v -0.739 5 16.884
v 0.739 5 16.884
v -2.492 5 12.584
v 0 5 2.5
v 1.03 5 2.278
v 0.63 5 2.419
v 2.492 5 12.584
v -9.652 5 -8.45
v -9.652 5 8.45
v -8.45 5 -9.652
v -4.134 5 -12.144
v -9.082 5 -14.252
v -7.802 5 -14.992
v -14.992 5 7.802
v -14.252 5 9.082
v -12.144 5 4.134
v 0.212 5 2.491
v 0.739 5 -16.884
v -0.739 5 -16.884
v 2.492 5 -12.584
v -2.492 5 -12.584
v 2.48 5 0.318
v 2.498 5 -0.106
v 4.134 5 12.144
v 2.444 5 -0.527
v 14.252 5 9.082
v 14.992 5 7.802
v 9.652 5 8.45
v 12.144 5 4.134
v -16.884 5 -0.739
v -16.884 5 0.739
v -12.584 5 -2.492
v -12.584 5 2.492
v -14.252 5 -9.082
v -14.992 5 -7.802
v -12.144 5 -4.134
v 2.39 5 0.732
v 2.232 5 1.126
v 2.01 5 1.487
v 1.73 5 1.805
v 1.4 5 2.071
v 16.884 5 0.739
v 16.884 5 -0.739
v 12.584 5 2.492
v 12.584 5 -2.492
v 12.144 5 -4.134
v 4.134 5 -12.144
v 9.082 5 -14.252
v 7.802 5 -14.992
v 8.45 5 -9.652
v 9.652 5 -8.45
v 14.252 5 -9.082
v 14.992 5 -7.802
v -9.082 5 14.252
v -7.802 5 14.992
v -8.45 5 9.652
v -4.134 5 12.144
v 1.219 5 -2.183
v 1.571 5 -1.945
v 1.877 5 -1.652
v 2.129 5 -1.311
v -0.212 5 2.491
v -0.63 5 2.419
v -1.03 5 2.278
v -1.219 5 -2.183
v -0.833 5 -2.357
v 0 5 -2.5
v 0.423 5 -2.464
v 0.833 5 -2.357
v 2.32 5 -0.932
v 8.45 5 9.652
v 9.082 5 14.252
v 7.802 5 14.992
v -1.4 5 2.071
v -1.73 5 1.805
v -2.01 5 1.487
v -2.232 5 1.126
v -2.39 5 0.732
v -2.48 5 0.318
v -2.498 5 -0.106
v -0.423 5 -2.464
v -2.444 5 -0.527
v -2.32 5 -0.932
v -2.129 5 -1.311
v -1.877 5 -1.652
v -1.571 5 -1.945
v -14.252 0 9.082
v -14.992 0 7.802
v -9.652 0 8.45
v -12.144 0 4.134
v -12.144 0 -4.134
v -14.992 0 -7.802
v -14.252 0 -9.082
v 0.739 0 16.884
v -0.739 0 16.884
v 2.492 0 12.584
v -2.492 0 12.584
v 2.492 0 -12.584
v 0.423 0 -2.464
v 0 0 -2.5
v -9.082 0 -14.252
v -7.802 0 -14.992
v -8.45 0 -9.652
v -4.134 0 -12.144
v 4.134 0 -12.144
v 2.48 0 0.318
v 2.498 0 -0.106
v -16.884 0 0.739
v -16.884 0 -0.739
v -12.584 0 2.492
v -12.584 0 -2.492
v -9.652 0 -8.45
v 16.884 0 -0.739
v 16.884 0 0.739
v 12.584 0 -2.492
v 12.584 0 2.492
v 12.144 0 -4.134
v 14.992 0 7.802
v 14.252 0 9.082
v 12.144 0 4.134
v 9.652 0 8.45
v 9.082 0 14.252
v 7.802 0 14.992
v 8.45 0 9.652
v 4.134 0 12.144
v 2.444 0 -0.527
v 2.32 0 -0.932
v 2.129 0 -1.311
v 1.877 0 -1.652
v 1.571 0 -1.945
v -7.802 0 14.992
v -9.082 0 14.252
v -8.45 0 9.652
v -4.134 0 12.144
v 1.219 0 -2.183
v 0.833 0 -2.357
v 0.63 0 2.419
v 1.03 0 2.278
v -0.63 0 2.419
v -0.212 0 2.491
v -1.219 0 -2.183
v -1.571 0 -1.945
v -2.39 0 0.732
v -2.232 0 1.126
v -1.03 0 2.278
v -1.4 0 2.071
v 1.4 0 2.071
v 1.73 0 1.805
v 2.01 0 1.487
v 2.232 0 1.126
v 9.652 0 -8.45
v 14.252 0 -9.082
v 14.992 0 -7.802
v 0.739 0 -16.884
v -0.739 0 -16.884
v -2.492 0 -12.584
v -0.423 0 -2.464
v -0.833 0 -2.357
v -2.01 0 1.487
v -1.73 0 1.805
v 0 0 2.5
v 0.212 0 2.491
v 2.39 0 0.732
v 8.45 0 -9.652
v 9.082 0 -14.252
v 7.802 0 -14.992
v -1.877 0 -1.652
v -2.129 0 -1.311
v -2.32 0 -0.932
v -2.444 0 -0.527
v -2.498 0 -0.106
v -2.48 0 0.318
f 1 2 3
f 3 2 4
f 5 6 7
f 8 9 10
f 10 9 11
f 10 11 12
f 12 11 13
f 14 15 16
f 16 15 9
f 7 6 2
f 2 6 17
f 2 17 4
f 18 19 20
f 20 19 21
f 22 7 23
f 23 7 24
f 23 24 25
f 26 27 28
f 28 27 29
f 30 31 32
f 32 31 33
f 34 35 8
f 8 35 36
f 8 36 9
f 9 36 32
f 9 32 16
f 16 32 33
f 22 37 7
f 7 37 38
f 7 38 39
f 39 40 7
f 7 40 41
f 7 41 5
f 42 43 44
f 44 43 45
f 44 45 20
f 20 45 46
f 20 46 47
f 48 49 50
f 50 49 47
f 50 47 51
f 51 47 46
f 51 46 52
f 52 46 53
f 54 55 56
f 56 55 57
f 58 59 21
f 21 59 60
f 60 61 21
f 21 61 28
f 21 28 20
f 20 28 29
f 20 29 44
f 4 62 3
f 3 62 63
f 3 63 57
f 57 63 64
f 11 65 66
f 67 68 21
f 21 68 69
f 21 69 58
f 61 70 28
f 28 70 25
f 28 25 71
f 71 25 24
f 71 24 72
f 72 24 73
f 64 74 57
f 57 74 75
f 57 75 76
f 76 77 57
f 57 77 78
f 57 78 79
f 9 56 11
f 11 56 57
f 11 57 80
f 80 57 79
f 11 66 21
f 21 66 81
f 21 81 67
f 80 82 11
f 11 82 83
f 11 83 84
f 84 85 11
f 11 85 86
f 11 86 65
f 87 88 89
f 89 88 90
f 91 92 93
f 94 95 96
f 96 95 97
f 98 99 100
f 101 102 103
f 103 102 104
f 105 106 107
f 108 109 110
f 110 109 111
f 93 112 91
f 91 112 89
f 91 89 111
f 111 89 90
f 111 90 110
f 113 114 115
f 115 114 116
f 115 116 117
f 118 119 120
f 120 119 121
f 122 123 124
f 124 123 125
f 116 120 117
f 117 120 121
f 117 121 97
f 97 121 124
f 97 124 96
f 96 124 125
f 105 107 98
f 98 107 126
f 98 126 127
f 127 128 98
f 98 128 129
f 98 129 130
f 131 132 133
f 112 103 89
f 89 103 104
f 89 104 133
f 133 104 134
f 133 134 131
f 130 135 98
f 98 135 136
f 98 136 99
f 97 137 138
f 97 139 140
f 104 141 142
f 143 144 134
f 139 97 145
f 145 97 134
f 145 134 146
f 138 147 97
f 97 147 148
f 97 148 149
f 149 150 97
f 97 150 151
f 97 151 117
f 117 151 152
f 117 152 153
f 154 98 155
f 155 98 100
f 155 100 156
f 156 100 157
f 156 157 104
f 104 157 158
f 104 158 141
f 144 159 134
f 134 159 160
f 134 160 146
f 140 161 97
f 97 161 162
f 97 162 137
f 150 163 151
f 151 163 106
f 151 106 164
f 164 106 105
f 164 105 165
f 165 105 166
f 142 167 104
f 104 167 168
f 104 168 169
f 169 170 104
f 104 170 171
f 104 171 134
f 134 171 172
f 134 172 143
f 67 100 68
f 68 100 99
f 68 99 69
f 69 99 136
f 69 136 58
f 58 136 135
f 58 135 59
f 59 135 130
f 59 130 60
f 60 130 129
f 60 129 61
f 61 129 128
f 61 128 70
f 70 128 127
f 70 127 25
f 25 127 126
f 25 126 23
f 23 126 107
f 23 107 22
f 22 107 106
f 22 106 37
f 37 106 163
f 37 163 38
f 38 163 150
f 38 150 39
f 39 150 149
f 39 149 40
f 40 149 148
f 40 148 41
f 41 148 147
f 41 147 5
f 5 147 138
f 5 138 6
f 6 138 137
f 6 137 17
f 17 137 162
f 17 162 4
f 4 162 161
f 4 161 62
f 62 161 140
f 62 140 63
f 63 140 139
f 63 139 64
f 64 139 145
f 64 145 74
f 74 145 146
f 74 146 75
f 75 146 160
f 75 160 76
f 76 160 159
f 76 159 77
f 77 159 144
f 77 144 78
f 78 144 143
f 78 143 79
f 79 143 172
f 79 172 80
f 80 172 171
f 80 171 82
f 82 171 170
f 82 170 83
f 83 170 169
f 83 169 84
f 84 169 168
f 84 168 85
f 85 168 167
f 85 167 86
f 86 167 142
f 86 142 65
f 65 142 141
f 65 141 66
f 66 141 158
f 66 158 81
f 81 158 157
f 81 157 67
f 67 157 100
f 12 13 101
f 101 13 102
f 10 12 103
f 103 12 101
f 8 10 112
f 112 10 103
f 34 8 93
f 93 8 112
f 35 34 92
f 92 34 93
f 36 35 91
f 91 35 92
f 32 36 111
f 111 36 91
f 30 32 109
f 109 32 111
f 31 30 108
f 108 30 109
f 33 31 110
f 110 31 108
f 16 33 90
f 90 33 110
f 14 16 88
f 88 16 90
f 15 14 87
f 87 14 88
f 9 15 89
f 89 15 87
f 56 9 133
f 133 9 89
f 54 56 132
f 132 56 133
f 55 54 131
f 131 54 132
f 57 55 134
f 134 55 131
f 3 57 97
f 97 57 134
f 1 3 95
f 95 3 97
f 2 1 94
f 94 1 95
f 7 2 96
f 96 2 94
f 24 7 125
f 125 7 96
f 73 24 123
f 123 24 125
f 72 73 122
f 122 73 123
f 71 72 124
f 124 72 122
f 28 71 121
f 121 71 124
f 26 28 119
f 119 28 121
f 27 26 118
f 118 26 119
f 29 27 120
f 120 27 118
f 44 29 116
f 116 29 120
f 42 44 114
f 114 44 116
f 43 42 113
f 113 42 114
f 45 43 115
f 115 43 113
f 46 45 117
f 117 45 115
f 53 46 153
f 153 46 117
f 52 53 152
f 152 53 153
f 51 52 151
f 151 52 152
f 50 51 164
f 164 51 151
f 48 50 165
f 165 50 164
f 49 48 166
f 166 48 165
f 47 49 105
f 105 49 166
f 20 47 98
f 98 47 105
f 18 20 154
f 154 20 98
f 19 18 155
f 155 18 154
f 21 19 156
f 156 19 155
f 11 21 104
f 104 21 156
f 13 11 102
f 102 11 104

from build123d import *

# Parameters (mm, degrees)
SKETCH1_R           = 15
SKETCH1_R_2         = 2.5
BOSS_EXTRUDE1_DEPTH = 5
BOSS_EXTRUDE2_START = -5
SKETCH2_R           = 17
SKETCH2_R_2         = 15
BOSS_EXTRUDE2_DEPTH = 5
SKETCH3_R           = 18
CUT_EXTRUDE1_DEPTH  = 5
SKETCH4_R           = 18.354217927
CUT_EXTRUDE2_DEPTH  = 5


with BuildPart() as part:
    # Sketch1 → Boss-Extrude1 (new body)
    with BuildSketch(Plane(origin=(0, 0, 0), x_dir=(1, 0, 0), z_dir=(0, 1, 0))):
        with Locations(Location((0, 0, 0), (0, 0, 270))):
            Circle(SKETCH1_R)
        with Locations(Location((0, 0, 0), (0, 0, 270))):
            Circle(SKETCH1_R_2, mode=Mode.SUBTRACT)
    extrude(amount=BOSS_EXTRUDE1_DEPTH)

    # Sketch2 → Boss-Extrude2 (add)
    with BuildSketch(Plane(origin=(0, 5, 0), x_dir=(1, 0, 0), z_dir=(0, 1, 0)).offset(BOSS_EXTRUDE2_START)):
        with Locations(Location((0, 0, 0), (0, 0, 270))):
            Circle(SKETCH2_R)
        Circle(SKETCH2_R_2, mode=Mode.SUBTRACT)
    extrude(amount=BOSS_EXTRUDE2_DEPTH)

    # Sketch3 → Cut-Extrude1 (cut)
    with BuildSketch(Plane(origin=(0, 5, 0), x_dir=(1, 0, 0), z_dir=(0, 1, 0))):
        Circle(SKETCH3_R)
        Polygon((0.800081407, 17), (-0.800081407, 17), (-2.565946388, 12.667519465), (-3.338765682, 12.460443159), (-4.111584976, 12.253366853), (-7.807109176, 15.122472568), (-9.192890824, 14.322391161), (-8.555934489, 9.687420466), (-9.121677477, 9.121677477), (-9.687420466, 8.555934489), (-14.322391161, 9.192890824), (-15.122472568, 7.807109176), (-12.253366853, 4.111584976), (-12.460443159, 3.338765682), (-12.667519465, 2.565946388), (-17, 0.800081407), (-17, -0.800081407), (-12.667519465, -2.565946388), (-12.460443159, -3.338765682), (-12.253366853, -4.111584976), (-15.122472568, -7.807109176), (-14.322391161, -9.192890824), (-9.687420466, -8.555934489), (-9.121677477, -9.121677477), (-8.555934489, -9.687420466), (-9.192890824, -14.322391161), (-7.807109176, -15.122472568), (-4.111584976, -12.253366853), (-3.338765682, -12.460443159), (-2.565946388, -12.667519465), (-0.800081407, -17), (0.800081407, -17), (2.565946388, -12.667519465), (3.338765682, -12.460443159), (4.111584976, -12.253366853), (7.807109176, -15.122472568), (9.192890824, -14.322391161), (8.555934489, -9.687420466), (9.121677477, -9.121677477), (9.687420466, -8.555934489), (14.322391161, -9.192890824), (15.122472568, -7.807109176), (12.253366853, -4.111584976), (12.460443159, -3.338765682), (12.667519465, -2.565946388), (17, -0.800081407), (17, 0.800081407), (12.667519465, 2.565946388), (12.460443159, 3.338765682), (12.253366853, 4.111584976), (15.122472568, 7.807109176), (14.322391161, 9.192890824), (9.687420466, 8.555934489), (9.121677477, 9.121677477), (8.555934489, 9.687420466), (9.192890824, 14.322391161), (7.807109176, 15.122472568), (4.111584976, 12.253366853), (3.338765682, 12.460443159), (2.565946388, 12.667519465), align=None, mode=Mode.SUBTRACT)
    extrude(amount=-CUT_EXTRUDE1_DEPTH, mode=Mode.SUBTRACT)

    # Sketch4 → Cut-Extrude2 (cut)
    with BuildSketch(Plane(origin=(0, 5, 0), x_dir=(1, 0, 0), z_dir=(0, 1, 0))):
        Circle(SKETCH4_R)
        with BuildLine():
            Line((2.492089445, 12.583781755), (4.133678109, 12.143919398))
            Line((4.133678109, 12.143919398), (7.801525521, 14.991537598))
            ThreePointArc((7.801525521, 14.991537598), (8.45, 14.635829324), (9.082289641, 14.252088088))
            Line((9.082289641, 14.252088088), (8.450103646, 9.651829953))
            Line((8.450103646, 9.651829953), (9.651829953, 8.450103646))
            Line((9.651829953, 8.450103646), (14.252088088, 9.082289641))
            ThreePointArc((14.252088088, 9.082289641), (14.635829324, 8.45), (14.991537598, 7.801525521))
            Line((14.991537598, 7.801525521), (12.143919398, 4.133678109))
            Line((12.143919398, 4.133678109), (12.583781755, 2.492089445))
            Line((12.583781755, 2.492089445), (16.883815162, 0.739449509))
            ThreePointArc((16.883815162, 0.739449509), (16.9, 0), (16.883815162, -0.739449509))
            Line((16.883815162, -0.739449509), (12.583781755, -2.492089445))
            Line((12.583781755, -2.492089445), (12.143919398, -4.133678109))
            Line((12.143919398, -4.133678109), (14.991537598, -7.801525521))
            ThreePointArc((14.991537598, -7.801525521), (14.635829324, -8.45), (14.252088088, -9.082289641))
            Line((14.252088088, -9.082289641), (9.651829953, -8.450103646))
            Line((9.651829953, -8.450103646), (8.450103646, -9.651829953))
            Line((8.450103646, -9.651829953), (9.082289641, -14.252088088))
            ThreePointArc((9.082289641, -14.252088088), (8.45, -14.635829324), (7.801525521, -14.991537598))
            Line((7.801525521, -14.991537598), (4.133678109, -12.143919398))
            Line((4.133678109, -12.143919398), (2.492089445, -12.583781755))
            Line((2.492089445, -12.583781755), (0.739449509, -16.883815162))
            ThreePointArc((0.739449509, -16.883815162), (0, -16.9), (-0.739449509, -16.883815162))
            Line((-0.739449509, -16.883815162), (-2.492089445, -12.583781755))
            Line((-2.492089445, -12.583781755), (-4.133678109, -12.143919398))
            Line((-4.133678109, -12.143919398), (-7.801525521, -14.991537598))
            ThreePointArc((-7.801525521, -14.991537598), (-8.45, -14.635829324), (-9.082289641, -14.252088088))
            Line((-9.082289641, -14.252088088), (-8.450103646, -9.651829953))
            Line((-8.450103646, -9.651829953), (-9.651829953, -8.450103646))
            Line((-9.651829953, -8.450103646), (-14.252088088, -9.082289641))
            ThreePointArc((-14.252088088, -9.082289641), (-14.635829324, -8.45), (-14.991537598, -7.801525521))
            Line((-14.991537598, -7.801525521), (-12.143919398, -4.133678109))
            Line((-12.143919398, -4.133678109), (-12.583781755, -2.492089445))
            Line((-12.583781755, -2.492089445), (-16.883815162, -0.739449509))
            ThreePointArc((-16.883815162, -0.739449509), (-16.9, 0), (-16.883815162, 0.739449509))
            Line((-16.883815162, 0.739449509), (-12.583781755, 2.492089445))
            Line((-12.583781755, 2.492089445), (-12.143919398, 4.133678109))
            Line((-12.143919398, 4.133678109), (-14.991537598, 7.801525521))
            ThreePointArc((-14.991537598, 7.801525521), (-14.635829324, 8.45), (-14.252088088, 9.082289641))
            Line((-14.252088088, 9.082289641), (-9.651829953, 8.450103646))
            Line((-9.651829953, 8.450103646), (-8.450103646, 9.651829953))
            Line((-8.450103646, 9.651829953), (-9.082289641, 14.252088088))
            ThreePointArc((-9.082289641, 14.252088088), (-8.45, 14.635829324), (-7.801525521, 14.991537598))
            Line((-7.801525521, 14.991537598), (-4.133678109, 12.143919398))
            Line((-4.133678109, 12.143919398), (-2.492089445, 12.583781755))
            Line((-2.492089445, 12.583781755), (-0.739449509, 16.883815162))
            ThreePointArc((-0.739449509, 16.883815162), (0, 16.9), (0.739449509, 16.883815162))
            Line((0.739449509, 16.883815162), (2.492089445, 12.583781755))
        make_face(mode=Mode.SUBTRACT)
    extrude(amount=-CUT_EXTRUDE2_DEPTH, mode=Mode.SUBTRACT)


solid = part.part
